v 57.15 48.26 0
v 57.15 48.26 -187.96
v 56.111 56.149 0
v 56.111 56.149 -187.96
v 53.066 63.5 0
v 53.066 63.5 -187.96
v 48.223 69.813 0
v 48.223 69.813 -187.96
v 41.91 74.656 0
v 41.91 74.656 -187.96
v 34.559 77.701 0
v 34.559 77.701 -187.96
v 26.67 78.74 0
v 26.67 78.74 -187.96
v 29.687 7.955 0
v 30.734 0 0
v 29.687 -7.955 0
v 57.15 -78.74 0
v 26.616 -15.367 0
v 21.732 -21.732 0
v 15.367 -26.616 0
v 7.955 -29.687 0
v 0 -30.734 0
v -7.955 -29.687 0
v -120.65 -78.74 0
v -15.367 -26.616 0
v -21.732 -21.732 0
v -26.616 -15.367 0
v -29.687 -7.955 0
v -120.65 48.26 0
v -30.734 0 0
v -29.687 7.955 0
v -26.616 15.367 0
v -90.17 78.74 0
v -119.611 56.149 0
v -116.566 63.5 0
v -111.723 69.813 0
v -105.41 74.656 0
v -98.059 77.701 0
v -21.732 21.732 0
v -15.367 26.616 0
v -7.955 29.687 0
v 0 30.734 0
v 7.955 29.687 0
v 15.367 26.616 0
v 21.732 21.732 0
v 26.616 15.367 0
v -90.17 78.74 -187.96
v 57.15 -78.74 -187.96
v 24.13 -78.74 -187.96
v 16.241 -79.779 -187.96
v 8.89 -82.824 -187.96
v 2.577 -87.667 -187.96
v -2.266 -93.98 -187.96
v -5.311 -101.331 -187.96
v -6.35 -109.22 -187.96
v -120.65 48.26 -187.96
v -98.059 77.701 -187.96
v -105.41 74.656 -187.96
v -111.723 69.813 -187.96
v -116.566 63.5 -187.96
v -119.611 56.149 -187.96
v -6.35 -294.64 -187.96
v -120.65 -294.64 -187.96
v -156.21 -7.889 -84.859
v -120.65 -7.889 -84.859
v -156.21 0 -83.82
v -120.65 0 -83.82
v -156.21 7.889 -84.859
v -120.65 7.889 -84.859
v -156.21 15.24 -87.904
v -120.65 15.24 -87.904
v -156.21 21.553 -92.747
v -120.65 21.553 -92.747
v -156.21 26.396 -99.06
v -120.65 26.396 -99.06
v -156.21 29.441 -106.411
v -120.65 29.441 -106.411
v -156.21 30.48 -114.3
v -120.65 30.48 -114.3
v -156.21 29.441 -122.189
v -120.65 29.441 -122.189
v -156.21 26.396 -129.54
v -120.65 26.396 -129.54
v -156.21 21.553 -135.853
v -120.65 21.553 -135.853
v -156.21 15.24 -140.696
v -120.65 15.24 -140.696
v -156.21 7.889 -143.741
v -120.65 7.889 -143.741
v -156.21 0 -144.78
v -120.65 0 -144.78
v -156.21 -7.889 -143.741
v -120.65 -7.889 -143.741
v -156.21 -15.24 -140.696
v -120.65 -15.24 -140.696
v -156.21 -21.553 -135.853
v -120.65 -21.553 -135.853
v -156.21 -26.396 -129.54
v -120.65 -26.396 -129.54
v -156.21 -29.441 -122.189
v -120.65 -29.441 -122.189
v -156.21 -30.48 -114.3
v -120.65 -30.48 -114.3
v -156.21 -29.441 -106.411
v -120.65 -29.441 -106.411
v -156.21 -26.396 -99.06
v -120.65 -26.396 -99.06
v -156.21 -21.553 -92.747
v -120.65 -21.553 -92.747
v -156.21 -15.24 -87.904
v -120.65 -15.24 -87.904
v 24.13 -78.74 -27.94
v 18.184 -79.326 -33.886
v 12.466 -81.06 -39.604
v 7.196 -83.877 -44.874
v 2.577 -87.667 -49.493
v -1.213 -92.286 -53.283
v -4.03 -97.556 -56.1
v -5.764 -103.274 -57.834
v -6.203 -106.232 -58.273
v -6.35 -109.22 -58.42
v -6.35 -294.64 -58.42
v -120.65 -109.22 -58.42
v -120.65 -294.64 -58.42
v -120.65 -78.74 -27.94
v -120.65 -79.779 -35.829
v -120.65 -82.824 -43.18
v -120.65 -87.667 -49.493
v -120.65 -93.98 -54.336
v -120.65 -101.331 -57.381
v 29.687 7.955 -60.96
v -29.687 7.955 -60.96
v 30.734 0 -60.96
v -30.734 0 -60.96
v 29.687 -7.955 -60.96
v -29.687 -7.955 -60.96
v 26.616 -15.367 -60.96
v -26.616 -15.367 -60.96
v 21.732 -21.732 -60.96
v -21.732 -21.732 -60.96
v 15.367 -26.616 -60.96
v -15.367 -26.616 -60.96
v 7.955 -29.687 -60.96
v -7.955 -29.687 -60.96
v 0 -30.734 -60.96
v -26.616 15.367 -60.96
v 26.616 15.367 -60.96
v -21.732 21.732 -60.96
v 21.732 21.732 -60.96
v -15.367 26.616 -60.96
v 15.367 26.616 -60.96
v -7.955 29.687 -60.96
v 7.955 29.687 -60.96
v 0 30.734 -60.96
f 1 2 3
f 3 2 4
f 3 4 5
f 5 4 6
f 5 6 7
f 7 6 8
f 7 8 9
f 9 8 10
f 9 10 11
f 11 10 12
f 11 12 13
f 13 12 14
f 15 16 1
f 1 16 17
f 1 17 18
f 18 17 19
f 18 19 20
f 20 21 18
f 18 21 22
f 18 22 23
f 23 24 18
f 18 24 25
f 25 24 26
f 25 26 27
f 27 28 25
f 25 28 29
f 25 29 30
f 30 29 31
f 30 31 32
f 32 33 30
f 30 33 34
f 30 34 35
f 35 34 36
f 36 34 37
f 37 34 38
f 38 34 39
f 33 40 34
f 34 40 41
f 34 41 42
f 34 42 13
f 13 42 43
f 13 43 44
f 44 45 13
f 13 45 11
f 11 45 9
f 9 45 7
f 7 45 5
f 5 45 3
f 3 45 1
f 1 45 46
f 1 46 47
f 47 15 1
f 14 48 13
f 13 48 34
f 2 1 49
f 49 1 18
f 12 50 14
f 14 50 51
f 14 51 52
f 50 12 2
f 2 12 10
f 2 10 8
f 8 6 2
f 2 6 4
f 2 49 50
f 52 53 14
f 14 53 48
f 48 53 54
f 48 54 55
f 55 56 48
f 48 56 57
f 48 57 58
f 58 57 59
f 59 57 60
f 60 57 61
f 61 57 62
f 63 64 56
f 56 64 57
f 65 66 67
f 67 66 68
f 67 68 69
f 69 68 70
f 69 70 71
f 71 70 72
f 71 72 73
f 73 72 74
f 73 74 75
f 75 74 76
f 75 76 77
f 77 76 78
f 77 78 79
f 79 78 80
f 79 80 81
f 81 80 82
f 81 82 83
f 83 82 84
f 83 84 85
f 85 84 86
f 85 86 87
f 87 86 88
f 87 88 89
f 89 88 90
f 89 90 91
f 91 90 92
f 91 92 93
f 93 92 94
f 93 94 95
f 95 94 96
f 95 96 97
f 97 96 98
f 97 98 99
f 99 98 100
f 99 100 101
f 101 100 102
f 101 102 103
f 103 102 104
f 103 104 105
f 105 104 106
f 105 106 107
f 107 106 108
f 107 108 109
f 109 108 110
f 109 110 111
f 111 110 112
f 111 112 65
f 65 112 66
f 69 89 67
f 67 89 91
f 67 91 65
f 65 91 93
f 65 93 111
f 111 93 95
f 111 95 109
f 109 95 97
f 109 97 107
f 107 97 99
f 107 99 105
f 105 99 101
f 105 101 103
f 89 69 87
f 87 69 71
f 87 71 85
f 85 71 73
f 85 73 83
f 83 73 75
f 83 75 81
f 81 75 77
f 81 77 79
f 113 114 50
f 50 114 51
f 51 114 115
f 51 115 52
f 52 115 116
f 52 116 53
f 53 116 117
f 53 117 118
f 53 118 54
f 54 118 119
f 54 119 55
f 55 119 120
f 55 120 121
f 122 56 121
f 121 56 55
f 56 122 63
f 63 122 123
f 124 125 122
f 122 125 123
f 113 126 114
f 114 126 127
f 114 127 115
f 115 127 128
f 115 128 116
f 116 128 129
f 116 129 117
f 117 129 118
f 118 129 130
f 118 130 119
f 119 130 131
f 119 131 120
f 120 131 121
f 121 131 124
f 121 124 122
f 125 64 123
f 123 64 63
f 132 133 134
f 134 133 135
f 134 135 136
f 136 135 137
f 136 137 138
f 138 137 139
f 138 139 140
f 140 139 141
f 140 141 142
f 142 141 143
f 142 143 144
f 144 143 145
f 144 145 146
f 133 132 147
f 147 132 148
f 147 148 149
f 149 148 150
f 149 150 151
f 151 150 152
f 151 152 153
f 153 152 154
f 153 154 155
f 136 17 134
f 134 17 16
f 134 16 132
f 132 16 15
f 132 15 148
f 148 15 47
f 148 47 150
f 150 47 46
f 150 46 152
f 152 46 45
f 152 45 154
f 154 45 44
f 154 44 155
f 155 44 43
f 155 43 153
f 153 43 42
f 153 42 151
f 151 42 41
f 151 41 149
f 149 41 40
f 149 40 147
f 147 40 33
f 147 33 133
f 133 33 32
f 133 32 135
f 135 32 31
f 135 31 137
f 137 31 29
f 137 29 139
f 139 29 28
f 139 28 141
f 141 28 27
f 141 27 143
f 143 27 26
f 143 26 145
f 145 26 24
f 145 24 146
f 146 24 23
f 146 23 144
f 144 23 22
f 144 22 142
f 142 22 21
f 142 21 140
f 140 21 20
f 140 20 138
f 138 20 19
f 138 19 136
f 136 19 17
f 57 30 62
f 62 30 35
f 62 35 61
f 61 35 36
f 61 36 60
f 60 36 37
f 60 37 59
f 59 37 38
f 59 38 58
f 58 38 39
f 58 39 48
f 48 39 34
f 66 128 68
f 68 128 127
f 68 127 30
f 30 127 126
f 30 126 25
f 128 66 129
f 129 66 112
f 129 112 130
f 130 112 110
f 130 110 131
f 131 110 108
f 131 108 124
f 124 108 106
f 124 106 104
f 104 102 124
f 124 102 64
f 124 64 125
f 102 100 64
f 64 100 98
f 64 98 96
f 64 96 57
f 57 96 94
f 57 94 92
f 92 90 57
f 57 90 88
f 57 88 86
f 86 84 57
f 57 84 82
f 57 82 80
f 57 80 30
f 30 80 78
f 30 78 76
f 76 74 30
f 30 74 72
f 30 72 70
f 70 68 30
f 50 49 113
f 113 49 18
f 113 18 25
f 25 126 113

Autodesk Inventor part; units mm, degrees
ref_plane "YZ Plane" through (0, 0, 0) normal (1, 0, 0) x (0, 1, 0)
ref_plane "XZ Plane" through (0, 0, 0) normal (0, 1, 0) x (-1, 0, 0)
ref_plane "XY Plane" through (0, 0, 0) normal (0, 0, 1) x (1, 0, 0)
sketch "Sketch1" plane through (0, 0, 0) normal (0, 0, 1) x (1, 0, 0)
  circle A0 centre (0, 0) radius 30.734
  line L0 (-120.65, -78.74) -> (120.65, -78.74)
  line L1 (120.65, -78.74) -> (120.65, 48.26)
  line L2 (90.17, 78.74) -> (-90.17, 78.74)
  line L3 (-120.65, 48.26) -> (-120.65, -78.74)
  arc A1 (-90.17, 78.74) -> (-120.65, 48.26) centre (-90.17, 48.26) ccw
  arc A2 (120.65, 48.26) -> (90.17, 78.74) centre (90.17, 48.26) ccw
  point P0 (120.65, 78.74)
  point P1 (-120.65, 78.74)
  dimension "d0" = 61.468
  dimension "d1" = 157.48
  dimension "d2" = 241.3
  dimension "d3" = 78.74
  dimension "d4" = 120.65
  dimension "d5" = 30.48
extrude "Extrusion1" add sketch "Sketch1" against normal blind 187.96
sketch "Sketch2" plane through (0, 0, -187.96) normal (0, 0, -1) x (-1, 0, 0)
  circle A0 centre (0, 0) radius 30.734 projected
  circle A1 centre (0, 0) radius 52.0012
extrude "Extrusion2" add sketch "Sketch2" against normal blind 127 contours A0 | A1
sketch "Sketch3" plane through (-120.65, -78.74, 0) normal (-1, 0, 0) x (0, 0, 1)
  line L0 (-187.96, 0) -> (-187.96, 127) projected
  line L1 (-187.96, 127) -> (-58.42, 127)
  line L2 (-58.42, -30.48) -> (-58.42, -215.9)
  line L3 (-58.42, -215.9) -> (-187.96, -215.9)
  line L4 (-187.96, -215.9) -> (-187.96, 127)
  line L5 (0, 0) -> (-187.96, 0) projected
  line L6 (-27.94, 0) -> (0, 0)
  line L7 (-187.96, -215.9) -> (-58.42, -215.9)
  line L8 (-58.42, -215.9) -> (-58.42, -30.48)
  line L9 (-58.42, 0) -> (-187.96, 0)
  line L10 (-187.96, 0) -> (-187.96, -215.9)
  arc A0 (-27.94, 0) -> (-58.42, -30.48) centre (-27.94, -30.48) ccw
  line L11 (0, 0) -> (-187.96, 0)
  line L12 (-187.96, -215.9) -> (-58.42, -215.9)
  arc A1 (-27.94, 0) -> (-58.42, -30.48) centre (-27.94, -30.48) ccw
  line L13 (-58.42, -30.48) -> (-58.42, -215.9)
  line L14 (-187.96, -215.9) -> (-187.96, 0)
  line L15 (-187.96, 0) -> (-27.94, 0)
  arc A2 (-27.94, 0) -> (-58.42, -30.48) centre (-27.94, -30.48) ccw
  point P0 (0, 78.74)
  dimension "d10" = 129.54
  dimension "d11" = 342.9
  dimension "d12" = 30.48
extrude "Extrusion3" add sketch "Sketch3" against normal blind 114.3
fillet "Fillet1" radius 30.48 1 edges at (-6.35, -78.74, -107.95)
sketch "Sketch4" plane through (-120.65, -78.74, 0) normal (-1, 0, 0) x (0, 0, 1)
  line L0 (0, 127) -> (-187.96, 127) projected
  line L1 (-187.96, 127) -> (-187.96, 69.85)
  line L2 (-187.96, 127) -> (-187.96, 0) projected
  line L3 (-144.78, 78.74) -> (-114.3, 78.74)
  circle A0 centre (-114.3, 78.74) radius 30.48
  line L4 (0, 127) -> (0, 0) projected
  point P0 (0, 78.74)
  dimension "d18" = 60.96
  dimension "d21" = 114.3
  dimension "d25" = 0
extrude "Extrusion4" add sketch "Sketch4" along normal blind 35.56
sketch "Sketch5" plane through (120.65, -78.74, 0) normal (1, 0, 0) x (0, 0, -1)
  line L0 (-23.8125, -17.4625) -> (228.6, -17.4625)
  line L1 (228.6, -17.4625) -> (228.6, 187.325)
  line L2 (228.6, 187.325) -> (-23.8125, 187.325)
  line L3 (-23.8125, 187.325) -> (-23.8125, -17.4625)
  point P0 (0, 78.74)
extrude "Extrusion5" cut sketch "Sketch5" against normal blind 63.5
fillet "Fillet2" radius 30.48 1 edges at (57.15, 78.74, -93.98)
equation "\"d3\" = 0.5 * d1"
equation "\"d4\" = 0.5 * d2"
properties part number "Shoulder1 Link"
